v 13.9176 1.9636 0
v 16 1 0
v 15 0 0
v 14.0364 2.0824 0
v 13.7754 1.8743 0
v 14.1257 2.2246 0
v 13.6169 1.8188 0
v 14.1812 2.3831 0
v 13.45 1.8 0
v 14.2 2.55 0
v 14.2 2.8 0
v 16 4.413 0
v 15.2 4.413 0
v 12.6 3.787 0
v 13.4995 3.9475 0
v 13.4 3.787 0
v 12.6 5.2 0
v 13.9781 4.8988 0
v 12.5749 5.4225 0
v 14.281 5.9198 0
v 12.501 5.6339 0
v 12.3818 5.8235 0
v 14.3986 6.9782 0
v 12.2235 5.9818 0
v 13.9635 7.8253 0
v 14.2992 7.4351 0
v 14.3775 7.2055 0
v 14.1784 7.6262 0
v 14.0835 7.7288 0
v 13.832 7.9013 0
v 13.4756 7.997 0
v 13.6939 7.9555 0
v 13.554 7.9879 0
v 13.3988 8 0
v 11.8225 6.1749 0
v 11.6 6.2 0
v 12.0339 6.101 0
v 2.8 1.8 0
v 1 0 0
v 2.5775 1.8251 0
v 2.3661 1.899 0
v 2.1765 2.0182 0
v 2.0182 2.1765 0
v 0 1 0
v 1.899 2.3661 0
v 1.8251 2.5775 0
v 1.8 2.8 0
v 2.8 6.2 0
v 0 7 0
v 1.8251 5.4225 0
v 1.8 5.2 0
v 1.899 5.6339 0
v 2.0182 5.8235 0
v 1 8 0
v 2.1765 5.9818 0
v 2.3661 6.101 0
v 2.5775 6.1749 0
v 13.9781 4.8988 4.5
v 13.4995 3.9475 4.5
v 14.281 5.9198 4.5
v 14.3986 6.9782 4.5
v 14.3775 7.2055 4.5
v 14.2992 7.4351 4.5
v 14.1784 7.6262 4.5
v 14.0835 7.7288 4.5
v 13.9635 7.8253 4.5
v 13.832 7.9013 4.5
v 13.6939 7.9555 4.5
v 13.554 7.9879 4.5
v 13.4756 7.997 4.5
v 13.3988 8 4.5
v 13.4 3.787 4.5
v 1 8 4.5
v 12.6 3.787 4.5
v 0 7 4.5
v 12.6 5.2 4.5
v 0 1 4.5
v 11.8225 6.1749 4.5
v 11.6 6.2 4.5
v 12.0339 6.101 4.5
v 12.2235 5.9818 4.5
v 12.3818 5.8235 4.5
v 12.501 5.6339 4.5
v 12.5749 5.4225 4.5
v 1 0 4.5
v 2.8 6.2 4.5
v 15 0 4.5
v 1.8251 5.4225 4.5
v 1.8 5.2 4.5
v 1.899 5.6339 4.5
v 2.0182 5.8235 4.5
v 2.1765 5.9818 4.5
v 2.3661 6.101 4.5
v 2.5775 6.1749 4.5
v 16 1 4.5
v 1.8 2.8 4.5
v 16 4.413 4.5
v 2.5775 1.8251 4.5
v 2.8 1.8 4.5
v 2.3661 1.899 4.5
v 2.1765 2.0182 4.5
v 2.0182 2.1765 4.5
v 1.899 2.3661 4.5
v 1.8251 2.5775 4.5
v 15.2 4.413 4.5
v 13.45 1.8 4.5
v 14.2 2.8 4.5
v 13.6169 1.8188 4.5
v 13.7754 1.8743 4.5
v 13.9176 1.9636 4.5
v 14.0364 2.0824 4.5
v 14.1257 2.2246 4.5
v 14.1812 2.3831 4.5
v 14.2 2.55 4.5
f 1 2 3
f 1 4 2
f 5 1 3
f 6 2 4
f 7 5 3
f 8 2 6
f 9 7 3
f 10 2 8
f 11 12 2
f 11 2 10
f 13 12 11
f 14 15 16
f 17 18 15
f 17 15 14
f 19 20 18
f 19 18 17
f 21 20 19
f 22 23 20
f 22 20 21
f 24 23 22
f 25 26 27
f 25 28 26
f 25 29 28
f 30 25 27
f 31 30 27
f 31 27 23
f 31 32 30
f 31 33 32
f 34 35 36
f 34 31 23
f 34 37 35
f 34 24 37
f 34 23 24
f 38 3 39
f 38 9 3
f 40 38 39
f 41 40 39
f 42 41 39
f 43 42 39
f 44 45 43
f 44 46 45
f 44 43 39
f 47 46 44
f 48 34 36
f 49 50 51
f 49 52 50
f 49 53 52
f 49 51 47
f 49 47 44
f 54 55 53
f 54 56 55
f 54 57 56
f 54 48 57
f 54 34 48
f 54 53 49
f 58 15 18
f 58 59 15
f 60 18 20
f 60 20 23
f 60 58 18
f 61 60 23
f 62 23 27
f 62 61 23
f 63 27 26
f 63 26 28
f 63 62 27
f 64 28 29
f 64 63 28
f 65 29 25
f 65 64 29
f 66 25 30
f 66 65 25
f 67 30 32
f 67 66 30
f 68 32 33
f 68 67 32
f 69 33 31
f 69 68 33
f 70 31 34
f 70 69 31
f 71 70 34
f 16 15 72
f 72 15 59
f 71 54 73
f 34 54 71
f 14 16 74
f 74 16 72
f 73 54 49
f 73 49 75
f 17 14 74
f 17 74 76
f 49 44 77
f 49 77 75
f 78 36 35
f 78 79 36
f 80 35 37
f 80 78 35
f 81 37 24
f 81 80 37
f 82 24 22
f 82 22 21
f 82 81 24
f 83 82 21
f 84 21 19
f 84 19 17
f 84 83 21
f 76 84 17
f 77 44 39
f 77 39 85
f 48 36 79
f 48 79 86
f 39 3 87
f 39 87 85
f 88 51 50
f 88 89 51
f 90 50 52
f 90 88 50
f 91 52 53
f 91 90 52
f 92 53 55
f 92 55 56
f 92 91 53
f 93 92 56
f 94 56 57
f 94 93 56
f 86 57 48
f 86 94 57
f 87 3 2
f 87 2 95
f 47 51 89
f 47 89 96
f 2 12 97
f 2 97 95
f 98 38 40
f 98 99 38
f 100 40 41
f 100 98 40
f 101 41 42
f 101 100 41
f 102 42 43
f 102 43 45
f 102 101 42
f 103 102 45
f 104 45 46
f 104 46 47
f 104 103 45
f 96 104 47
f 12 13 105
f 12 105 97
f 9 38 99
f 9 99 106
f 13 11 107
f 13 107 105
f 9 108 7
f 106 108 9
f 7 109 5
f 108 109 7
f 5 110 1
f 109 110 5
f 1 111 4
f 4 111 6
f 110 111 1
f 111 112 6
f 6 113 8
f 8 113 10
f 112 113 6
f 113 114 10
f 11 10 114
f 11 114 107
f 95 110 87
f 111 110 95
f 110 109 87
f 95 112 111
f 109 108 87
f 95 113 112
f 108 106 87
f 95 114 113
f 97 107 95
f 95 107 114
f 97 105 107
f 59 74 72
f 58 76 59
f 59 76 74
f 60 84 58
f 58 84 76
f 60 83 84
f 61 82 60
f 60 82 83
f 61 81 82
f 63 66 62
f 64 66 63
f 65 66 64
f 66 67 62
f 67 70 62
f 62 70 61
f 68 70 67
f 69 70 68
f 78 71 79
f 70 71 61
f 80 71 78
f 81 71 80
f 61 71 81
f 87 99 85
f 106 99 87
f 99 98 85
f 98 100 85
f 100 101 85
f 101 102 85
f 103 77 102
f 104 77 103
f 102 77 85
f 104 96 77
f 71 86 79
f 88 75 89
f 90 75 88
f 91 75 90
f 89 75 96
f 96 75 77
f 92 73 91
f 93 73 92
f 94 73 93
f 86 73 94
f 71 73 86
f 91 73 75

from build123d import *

# Parameters (mm, degrees)
PAD_DEPTH    = 4.5
CHAMFER_SIZE = 1
FILLET_R     = 1
FILLET001_R  = 0.75
FILLET002_R  = 6
FILLET003_R  = 1


with BuildPart() as part:
    # Sketch → Pad (new body)
    with BuildSketch(Plane.XY):
        Polygon((0, 0), (0, 8), (14.4, 8), (14.4, 5.4), (13.4, 3.786999), (12.6, 3.786999), (12.6, 6.2), (1.8, 6.2), (1.8, 1.8), (14.2, 1.8), (14.2, 2.8), (15.2, 4.413001), (16, 4.413001), (16, 0), align=None)
    extrude(amount=PAD_DEPTH)

    # Chamfer
    chamfer_edges = [part.edges().sort_by_distance(p)[0] for p in [
        (0, 8, 2.25),
        (0, 0, 2.25),
        (16, 0, 2.25),
    ]]
    chamfer(chamfer_edges, length=CHAMFER_SIZE)

    # Fillet
    fillet_edges = [part.edges().sort_by_distance(p)[0] for p in [
        (1.8, 6.2, 2.25),
        (1.8, 1.8, 2.25),
        (12.6, 6.2, 2.25),
    ]]
    fillet(fillet_edges, radius=FILLET_R)

    # Fillet001
    fillet001_edges = [part.edges().sort_by_distance(p)[0] for p in [
        (14.2, 1.8, 2.25),
    ]]
    fillet(fillet001_edges, radius=FILLET001_R)

    # Fillet002
    fillet002_edges = [part.edges().sort_by_distance(p)[0] for p in [
        (14.4, 5.4, 2.25),
    ]]
    fillet(fillet002_edges, radius=FILLET002_R)

    # Fillet003
    fillet003_edges = [part.edges().sort_by_distance(p)[0] for p in [
        (14.4, 8, 2.25),
    ]]
    fillet(fillet003_edges, radius=FILLET003_R)


solid = part.part
